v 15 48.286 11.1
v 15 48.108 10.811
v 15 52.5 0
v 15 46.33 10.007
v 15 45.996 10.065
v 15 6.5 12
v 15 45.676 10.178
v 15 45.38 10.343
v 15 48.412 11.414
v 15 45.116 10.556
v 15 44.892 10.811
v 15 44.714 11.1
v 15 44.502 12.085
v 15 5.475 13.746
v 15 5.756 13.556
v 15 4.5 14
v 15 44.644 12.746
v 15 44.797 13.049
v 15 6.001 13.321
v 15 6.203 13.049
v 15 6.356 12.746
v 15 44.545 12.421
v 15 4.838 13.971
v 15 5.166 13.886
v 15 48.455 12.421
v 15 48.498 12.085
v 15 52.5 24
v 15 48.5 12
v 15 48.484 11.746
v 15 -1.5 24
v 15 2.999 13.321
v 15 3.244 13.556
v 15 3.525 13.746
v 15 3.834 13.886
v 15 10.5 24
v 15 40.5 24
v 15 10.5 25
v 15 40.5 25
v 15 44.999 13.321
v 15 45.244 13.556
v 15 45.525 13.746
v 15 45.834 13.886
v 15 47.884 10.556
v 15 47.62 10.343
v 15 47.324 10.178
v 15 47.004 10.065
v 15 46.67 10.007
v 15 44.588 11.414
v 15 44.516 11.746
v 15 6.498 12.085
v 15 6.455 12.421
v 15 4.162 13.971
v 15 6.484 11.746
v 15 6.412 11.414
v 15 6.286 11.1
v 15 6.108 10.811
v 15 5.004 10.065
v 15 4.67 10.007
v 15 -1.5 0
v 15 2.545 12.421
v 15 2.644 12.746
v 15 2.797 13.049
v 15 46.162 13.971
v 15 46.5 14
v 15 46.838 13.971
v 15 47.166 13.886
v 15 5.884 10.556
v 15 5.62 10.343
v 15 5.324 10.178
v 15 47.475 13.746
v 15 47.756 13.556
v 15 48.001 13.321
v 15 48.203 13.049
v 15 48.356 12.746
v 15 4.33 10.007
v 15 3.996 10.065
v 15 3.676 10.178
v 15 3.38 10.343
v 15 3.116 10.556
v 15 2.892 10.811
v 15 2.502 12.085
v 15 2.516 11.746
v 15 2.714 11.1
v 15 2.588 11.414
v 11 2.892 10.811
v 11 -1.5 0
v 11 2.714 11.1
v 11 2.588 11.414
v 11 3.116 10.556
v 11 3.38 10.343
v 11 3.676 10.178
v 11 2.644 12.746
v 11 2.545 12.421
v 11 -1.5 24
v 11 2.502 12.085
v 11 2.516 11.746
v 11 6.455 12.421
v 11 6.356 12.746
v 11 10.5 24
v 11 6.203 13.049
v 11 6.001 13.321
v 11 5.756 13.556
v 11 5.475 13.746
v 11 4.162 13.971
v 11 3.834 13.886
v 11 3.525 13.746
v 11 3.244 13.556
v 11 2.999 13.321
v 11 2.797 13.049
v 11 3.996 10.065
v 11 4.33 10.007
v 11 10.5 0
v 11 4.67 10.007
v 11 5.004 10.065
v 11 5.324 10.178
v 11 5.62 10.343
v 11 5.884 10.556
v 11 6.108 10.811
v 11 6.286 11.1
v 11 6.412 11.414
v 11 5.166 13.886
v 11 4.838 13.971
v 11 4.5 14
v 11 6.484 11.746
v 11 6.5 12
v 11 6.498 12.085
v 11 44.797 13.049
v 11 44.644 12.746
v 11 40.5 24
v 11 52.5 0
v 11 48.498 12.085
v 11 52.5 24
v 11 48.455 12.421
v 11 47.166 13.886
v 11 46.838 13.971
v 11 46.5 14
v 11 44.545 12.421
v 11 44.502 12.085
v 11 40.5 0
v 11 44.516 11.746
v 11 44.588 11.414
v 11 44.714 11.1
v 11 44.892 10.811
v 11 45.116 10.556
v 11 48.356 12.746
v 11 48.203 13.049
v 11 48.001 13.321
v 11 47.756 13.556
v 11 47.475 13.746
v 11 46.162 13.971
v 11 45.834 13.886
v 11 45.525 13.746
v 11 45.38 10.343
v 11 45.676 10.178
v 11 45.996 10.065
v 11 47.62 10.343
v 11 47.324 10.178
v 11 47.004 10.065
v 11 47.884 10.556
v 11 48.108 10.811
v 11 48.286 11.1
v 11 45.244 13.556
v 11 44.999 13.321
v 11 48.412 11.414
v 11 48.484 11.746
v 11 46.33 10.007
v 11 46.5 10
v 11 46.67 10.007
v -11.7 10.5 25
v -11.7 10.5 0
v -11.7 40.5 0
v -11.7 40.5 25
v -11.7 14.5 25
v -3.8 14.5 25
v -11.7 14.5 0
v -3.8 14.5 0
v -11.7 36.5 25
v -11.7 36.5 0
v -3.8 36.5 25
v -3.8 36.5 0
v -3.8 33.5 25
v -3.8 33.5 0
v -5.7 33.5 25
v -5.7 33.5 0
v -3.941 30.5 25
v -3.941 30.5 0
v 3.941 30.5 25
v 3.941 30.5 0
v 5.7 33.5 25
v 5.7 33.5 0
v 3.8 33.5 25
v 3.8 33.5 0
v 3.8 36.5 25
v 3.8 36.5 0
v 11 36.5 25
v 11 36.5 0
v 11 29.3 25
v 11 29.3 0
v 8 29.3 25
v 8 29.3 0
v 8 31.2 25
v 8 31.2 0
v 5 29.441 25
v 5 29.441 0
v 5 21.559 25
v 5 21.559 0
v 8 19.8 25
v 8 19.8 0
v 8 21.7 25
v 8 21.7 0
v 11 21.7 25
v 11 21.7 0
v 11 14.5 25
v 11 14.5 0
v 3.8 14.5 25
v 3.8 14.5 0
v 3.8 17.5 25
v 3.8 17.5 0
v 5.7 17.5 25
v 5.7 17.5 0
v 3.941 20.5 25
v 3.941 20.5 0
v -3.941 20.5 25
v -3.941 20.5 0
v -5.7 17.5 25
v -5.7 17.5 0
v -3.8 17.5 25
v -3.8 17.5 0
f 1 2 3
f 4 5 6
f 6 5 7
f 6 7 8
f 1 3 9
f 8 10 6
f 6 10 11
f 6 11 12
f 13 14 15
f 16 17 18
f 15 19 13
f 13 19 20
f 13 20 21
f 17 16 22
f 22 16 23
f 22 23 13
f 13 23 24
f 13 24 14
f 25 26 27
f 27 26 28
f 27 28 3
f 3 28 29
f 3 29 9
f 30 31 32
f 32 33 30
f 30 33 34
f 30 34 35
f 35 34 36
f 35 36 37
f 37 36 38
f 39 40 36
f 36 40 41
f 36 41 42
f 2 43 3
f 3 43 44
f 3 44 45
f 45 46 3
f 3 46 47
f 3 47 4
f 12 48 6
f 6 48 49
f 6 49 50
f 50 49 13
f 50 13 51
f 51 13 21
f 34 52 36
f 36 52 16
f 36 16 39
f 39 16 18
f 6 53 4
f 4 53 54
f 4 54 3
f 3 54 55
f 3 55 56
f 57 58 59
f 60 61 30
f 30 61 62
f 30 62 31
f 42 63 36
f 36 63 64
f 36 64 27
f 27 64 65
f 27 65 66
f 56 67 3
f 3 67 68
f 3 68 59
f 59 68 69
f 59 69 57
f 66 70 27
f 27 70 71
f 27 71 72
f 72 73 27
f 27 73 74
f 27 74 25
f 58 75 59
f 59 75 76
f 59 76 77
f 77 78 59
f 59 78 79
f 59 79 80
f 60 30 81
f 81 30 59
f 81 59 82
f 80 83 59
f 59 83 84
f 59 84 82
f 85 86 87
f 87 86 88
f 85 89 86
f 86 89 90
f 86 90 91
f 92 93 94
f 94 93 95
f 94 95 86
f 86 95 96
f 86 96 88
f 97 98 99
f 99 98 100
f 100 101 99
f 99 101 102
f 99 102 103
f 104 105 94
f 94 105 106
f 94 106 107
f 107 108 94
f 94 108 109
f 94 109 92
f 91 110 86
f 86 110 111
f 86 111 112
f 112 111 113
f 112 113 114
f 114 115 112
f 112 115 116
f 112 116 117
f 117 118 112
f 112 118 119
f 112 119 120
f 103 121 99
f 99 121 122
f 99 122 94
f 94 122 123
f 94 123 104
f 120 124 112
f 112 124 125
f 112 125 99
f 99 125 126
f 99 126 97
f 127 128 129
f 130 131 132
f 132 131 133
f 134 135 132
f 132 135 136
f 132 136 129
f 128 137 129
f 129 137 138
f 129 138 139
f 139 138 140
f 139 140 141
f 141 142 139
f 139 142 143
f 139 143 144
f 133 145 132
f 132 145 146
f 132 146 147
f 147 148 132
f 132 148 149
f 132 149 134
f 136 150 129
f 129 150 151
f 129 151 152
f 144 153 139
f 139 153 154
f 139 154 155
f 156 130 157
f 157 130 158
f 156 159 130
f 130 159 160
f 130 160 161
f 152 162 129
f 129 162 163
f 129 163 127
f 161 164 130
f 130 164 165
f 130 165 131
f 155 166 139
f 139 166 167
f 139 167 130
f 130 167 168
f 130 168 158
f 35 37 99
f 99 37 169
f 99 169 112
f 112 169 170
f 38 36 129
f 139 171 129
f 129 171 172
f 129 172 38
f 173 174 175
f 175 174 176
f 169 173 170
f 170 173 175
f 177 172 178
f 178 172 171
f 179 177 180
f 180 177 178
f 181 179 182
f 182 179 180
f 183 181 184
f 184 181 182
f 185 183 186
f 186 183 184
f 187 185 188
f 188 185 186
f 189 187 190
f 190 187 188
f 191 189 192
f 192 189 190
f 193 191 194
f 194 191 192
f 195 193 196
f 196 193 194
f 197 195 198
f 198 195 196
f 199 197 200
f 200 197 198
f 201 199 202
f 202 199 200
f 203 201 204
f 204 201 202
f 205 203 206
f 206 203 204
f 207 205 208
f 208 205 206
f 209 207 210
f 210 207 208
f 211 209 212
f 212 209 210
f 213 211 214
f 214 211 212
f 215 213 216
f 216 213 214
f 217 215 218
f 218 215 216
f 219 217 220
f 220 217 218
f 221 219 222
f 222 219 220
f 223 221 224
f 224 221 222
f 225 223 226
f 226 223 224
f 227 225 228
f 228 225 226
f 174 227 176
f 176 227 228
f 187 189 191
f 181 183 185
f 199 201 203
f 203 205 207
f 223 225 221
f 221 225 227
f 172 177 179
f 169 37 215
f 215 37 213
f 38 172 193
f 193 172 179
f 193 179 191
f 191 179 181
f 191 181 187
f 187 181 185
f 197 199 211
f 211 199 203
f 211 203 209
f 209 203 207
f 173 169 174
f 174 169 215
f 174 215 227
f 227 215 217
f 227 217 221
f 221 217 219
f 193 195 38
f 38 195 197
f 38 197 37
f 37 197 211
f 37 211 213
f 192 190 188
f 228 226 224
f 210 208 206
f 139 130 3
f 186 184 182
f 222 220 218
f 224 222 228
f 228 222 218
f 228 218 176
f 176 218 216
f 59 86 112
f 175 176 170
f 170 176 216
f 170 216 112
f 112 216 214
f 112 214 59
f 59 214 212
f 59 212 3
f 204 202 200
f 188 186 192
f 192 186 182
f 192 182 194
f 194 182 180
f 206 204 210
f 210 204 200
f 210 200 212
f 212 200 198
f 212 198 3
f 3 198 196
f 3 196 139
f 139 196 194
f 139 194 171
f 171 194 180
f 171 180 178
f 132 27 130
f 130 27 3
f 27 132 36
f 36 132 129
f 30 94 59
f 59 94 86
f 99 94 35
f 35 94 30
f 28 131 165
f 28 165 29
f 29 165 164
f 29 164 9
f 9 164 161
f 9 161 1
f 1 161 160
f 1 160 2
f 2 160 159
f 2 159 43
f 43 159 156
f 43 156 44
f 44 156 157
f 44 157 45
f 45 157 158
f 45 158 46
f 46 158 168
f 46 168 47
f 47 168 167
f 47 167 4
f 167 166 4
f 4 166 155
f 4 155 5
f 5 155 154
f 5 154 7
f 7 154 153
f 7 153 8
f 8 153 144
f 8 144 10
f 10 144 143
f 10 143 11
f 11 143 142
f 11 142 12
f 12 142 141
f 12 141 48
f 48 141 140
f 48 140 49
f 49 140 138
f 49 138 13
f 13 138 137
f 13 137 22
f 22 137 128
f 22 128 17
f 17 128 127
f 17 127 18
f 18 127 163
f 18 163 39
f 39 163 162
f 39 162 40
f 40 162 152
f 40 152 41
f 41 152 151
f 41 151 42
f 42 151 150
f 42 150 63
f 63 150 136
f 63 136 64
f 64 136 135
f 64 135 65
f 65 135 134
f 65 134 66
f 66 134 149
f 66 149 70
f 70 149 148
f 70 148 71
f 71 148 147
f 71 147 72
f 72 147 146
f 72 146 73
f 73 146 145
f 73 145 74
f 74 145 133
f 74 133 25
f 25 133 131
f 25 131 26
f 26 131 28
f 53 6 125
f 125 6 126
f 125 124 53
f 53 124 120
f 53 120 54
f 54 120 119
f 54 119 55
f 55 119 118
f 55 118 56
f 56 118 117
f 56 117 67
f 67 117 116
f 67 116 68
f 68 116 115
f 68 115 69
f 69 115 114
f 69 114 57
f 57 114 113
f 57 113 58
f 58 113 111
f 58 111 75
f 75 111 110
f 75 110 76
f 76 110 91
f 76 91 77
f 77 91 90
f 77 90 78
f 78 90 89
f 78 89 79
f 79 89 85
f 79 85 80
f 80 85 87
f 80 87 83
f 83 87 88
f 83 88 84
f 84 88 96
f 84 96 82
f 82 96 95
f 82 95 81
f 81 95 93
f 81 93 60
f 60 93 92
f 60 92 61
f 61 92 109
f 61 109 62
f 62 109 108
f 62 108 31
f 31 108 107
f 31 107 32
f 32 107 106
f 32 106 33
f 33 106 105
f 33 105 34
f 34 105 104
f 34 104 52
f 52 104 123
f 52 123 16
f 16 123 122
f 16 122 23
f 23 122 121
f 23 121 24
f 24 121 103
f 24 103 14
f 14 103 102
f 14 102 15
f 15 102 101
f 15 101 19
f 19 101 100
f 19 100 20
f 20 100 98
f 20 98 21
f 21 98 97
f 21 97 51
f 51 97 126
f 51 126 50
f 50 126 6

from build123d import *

# Parameters (mm, degrees)
RESSALTO_EXTRUS_O3_DEPTH = 25
ESBO_O6_W                = 4
ESBO_O6_H                = 16
RESSALTO_EXTRUS_O6_DEPTH = 24
ESBO_O7_R                = 2
CORTE_EXTRUS_O3_DEPTH    = 43


with BuildPart() as part:
    # Esboço1 → Ressalto-extrusão3 (new body)
    with BuildSketch(Plane.XY):
        Polygon((-3.8, 33.5), (-5.7, 33.5), (-3.940587347, 30.5), (3.940587347, 30.5), (5.7, 33.5), (3.8, 33.5), (3.8, 36.5), (11, 36.5), (11, 29.3), (8, 29.3), (8, 31.2), (5, 29.440587347), (5, 21.559412653), (8, 19.8), (8, 21.7), (11, 21.7), (11, 14.5), (3.8, 14.5), (3.8, 17.5), (5.7, 17.5), (3.940587347, 20.5), (-3.940587347, 20.5), (-5.7, 17.5), (-3.8, 17.5), (-3.8, 14.5), (-11.2, 14.5), (-11.7, 14.5), (-11.7, 10.5), (11.7, 10.5), (15, 10.5), (15, 37.2), (15, 40.5), (-11.7, 40.5), (-11.7, 36.5), (-3.8, 36.5), align=None)
    extrude(amount=RESSALTO_EXTRUS_O3_DEPTH)

    # Esboço6 → Ressalto-extrusão6 (add)
    with BuildSketch(Plane.XY):
        with Locations((13, 44.5)):
            Rectangle(ESBO_O6_W, ESBO_O6_H)
        with Locations((13, 6.5)):
            Rectangle(ESBO_O6_W, ESBO_O6_H)
    extrude(amount=RESSALTO_EXTRUS_O6_DEPTH)

    # Esboço7 → Corte-extrusão3 (cut)
    with BuildSketch(Plane(origin=(0, 0, 0), x_dir=(0, 0, -1), z_dir=(1, 0, 0))):
        with Locations((-12, 46.5)):
            Circle(ESBO_O7_R)
        with Locations((-12, 4.5)):
            Circle(ESBO_O7_R)
    extrude(amount=CORTE_EXTRUS_O3_DEPTH, mode=Mode.SUBTRACT)


solid = part.part
